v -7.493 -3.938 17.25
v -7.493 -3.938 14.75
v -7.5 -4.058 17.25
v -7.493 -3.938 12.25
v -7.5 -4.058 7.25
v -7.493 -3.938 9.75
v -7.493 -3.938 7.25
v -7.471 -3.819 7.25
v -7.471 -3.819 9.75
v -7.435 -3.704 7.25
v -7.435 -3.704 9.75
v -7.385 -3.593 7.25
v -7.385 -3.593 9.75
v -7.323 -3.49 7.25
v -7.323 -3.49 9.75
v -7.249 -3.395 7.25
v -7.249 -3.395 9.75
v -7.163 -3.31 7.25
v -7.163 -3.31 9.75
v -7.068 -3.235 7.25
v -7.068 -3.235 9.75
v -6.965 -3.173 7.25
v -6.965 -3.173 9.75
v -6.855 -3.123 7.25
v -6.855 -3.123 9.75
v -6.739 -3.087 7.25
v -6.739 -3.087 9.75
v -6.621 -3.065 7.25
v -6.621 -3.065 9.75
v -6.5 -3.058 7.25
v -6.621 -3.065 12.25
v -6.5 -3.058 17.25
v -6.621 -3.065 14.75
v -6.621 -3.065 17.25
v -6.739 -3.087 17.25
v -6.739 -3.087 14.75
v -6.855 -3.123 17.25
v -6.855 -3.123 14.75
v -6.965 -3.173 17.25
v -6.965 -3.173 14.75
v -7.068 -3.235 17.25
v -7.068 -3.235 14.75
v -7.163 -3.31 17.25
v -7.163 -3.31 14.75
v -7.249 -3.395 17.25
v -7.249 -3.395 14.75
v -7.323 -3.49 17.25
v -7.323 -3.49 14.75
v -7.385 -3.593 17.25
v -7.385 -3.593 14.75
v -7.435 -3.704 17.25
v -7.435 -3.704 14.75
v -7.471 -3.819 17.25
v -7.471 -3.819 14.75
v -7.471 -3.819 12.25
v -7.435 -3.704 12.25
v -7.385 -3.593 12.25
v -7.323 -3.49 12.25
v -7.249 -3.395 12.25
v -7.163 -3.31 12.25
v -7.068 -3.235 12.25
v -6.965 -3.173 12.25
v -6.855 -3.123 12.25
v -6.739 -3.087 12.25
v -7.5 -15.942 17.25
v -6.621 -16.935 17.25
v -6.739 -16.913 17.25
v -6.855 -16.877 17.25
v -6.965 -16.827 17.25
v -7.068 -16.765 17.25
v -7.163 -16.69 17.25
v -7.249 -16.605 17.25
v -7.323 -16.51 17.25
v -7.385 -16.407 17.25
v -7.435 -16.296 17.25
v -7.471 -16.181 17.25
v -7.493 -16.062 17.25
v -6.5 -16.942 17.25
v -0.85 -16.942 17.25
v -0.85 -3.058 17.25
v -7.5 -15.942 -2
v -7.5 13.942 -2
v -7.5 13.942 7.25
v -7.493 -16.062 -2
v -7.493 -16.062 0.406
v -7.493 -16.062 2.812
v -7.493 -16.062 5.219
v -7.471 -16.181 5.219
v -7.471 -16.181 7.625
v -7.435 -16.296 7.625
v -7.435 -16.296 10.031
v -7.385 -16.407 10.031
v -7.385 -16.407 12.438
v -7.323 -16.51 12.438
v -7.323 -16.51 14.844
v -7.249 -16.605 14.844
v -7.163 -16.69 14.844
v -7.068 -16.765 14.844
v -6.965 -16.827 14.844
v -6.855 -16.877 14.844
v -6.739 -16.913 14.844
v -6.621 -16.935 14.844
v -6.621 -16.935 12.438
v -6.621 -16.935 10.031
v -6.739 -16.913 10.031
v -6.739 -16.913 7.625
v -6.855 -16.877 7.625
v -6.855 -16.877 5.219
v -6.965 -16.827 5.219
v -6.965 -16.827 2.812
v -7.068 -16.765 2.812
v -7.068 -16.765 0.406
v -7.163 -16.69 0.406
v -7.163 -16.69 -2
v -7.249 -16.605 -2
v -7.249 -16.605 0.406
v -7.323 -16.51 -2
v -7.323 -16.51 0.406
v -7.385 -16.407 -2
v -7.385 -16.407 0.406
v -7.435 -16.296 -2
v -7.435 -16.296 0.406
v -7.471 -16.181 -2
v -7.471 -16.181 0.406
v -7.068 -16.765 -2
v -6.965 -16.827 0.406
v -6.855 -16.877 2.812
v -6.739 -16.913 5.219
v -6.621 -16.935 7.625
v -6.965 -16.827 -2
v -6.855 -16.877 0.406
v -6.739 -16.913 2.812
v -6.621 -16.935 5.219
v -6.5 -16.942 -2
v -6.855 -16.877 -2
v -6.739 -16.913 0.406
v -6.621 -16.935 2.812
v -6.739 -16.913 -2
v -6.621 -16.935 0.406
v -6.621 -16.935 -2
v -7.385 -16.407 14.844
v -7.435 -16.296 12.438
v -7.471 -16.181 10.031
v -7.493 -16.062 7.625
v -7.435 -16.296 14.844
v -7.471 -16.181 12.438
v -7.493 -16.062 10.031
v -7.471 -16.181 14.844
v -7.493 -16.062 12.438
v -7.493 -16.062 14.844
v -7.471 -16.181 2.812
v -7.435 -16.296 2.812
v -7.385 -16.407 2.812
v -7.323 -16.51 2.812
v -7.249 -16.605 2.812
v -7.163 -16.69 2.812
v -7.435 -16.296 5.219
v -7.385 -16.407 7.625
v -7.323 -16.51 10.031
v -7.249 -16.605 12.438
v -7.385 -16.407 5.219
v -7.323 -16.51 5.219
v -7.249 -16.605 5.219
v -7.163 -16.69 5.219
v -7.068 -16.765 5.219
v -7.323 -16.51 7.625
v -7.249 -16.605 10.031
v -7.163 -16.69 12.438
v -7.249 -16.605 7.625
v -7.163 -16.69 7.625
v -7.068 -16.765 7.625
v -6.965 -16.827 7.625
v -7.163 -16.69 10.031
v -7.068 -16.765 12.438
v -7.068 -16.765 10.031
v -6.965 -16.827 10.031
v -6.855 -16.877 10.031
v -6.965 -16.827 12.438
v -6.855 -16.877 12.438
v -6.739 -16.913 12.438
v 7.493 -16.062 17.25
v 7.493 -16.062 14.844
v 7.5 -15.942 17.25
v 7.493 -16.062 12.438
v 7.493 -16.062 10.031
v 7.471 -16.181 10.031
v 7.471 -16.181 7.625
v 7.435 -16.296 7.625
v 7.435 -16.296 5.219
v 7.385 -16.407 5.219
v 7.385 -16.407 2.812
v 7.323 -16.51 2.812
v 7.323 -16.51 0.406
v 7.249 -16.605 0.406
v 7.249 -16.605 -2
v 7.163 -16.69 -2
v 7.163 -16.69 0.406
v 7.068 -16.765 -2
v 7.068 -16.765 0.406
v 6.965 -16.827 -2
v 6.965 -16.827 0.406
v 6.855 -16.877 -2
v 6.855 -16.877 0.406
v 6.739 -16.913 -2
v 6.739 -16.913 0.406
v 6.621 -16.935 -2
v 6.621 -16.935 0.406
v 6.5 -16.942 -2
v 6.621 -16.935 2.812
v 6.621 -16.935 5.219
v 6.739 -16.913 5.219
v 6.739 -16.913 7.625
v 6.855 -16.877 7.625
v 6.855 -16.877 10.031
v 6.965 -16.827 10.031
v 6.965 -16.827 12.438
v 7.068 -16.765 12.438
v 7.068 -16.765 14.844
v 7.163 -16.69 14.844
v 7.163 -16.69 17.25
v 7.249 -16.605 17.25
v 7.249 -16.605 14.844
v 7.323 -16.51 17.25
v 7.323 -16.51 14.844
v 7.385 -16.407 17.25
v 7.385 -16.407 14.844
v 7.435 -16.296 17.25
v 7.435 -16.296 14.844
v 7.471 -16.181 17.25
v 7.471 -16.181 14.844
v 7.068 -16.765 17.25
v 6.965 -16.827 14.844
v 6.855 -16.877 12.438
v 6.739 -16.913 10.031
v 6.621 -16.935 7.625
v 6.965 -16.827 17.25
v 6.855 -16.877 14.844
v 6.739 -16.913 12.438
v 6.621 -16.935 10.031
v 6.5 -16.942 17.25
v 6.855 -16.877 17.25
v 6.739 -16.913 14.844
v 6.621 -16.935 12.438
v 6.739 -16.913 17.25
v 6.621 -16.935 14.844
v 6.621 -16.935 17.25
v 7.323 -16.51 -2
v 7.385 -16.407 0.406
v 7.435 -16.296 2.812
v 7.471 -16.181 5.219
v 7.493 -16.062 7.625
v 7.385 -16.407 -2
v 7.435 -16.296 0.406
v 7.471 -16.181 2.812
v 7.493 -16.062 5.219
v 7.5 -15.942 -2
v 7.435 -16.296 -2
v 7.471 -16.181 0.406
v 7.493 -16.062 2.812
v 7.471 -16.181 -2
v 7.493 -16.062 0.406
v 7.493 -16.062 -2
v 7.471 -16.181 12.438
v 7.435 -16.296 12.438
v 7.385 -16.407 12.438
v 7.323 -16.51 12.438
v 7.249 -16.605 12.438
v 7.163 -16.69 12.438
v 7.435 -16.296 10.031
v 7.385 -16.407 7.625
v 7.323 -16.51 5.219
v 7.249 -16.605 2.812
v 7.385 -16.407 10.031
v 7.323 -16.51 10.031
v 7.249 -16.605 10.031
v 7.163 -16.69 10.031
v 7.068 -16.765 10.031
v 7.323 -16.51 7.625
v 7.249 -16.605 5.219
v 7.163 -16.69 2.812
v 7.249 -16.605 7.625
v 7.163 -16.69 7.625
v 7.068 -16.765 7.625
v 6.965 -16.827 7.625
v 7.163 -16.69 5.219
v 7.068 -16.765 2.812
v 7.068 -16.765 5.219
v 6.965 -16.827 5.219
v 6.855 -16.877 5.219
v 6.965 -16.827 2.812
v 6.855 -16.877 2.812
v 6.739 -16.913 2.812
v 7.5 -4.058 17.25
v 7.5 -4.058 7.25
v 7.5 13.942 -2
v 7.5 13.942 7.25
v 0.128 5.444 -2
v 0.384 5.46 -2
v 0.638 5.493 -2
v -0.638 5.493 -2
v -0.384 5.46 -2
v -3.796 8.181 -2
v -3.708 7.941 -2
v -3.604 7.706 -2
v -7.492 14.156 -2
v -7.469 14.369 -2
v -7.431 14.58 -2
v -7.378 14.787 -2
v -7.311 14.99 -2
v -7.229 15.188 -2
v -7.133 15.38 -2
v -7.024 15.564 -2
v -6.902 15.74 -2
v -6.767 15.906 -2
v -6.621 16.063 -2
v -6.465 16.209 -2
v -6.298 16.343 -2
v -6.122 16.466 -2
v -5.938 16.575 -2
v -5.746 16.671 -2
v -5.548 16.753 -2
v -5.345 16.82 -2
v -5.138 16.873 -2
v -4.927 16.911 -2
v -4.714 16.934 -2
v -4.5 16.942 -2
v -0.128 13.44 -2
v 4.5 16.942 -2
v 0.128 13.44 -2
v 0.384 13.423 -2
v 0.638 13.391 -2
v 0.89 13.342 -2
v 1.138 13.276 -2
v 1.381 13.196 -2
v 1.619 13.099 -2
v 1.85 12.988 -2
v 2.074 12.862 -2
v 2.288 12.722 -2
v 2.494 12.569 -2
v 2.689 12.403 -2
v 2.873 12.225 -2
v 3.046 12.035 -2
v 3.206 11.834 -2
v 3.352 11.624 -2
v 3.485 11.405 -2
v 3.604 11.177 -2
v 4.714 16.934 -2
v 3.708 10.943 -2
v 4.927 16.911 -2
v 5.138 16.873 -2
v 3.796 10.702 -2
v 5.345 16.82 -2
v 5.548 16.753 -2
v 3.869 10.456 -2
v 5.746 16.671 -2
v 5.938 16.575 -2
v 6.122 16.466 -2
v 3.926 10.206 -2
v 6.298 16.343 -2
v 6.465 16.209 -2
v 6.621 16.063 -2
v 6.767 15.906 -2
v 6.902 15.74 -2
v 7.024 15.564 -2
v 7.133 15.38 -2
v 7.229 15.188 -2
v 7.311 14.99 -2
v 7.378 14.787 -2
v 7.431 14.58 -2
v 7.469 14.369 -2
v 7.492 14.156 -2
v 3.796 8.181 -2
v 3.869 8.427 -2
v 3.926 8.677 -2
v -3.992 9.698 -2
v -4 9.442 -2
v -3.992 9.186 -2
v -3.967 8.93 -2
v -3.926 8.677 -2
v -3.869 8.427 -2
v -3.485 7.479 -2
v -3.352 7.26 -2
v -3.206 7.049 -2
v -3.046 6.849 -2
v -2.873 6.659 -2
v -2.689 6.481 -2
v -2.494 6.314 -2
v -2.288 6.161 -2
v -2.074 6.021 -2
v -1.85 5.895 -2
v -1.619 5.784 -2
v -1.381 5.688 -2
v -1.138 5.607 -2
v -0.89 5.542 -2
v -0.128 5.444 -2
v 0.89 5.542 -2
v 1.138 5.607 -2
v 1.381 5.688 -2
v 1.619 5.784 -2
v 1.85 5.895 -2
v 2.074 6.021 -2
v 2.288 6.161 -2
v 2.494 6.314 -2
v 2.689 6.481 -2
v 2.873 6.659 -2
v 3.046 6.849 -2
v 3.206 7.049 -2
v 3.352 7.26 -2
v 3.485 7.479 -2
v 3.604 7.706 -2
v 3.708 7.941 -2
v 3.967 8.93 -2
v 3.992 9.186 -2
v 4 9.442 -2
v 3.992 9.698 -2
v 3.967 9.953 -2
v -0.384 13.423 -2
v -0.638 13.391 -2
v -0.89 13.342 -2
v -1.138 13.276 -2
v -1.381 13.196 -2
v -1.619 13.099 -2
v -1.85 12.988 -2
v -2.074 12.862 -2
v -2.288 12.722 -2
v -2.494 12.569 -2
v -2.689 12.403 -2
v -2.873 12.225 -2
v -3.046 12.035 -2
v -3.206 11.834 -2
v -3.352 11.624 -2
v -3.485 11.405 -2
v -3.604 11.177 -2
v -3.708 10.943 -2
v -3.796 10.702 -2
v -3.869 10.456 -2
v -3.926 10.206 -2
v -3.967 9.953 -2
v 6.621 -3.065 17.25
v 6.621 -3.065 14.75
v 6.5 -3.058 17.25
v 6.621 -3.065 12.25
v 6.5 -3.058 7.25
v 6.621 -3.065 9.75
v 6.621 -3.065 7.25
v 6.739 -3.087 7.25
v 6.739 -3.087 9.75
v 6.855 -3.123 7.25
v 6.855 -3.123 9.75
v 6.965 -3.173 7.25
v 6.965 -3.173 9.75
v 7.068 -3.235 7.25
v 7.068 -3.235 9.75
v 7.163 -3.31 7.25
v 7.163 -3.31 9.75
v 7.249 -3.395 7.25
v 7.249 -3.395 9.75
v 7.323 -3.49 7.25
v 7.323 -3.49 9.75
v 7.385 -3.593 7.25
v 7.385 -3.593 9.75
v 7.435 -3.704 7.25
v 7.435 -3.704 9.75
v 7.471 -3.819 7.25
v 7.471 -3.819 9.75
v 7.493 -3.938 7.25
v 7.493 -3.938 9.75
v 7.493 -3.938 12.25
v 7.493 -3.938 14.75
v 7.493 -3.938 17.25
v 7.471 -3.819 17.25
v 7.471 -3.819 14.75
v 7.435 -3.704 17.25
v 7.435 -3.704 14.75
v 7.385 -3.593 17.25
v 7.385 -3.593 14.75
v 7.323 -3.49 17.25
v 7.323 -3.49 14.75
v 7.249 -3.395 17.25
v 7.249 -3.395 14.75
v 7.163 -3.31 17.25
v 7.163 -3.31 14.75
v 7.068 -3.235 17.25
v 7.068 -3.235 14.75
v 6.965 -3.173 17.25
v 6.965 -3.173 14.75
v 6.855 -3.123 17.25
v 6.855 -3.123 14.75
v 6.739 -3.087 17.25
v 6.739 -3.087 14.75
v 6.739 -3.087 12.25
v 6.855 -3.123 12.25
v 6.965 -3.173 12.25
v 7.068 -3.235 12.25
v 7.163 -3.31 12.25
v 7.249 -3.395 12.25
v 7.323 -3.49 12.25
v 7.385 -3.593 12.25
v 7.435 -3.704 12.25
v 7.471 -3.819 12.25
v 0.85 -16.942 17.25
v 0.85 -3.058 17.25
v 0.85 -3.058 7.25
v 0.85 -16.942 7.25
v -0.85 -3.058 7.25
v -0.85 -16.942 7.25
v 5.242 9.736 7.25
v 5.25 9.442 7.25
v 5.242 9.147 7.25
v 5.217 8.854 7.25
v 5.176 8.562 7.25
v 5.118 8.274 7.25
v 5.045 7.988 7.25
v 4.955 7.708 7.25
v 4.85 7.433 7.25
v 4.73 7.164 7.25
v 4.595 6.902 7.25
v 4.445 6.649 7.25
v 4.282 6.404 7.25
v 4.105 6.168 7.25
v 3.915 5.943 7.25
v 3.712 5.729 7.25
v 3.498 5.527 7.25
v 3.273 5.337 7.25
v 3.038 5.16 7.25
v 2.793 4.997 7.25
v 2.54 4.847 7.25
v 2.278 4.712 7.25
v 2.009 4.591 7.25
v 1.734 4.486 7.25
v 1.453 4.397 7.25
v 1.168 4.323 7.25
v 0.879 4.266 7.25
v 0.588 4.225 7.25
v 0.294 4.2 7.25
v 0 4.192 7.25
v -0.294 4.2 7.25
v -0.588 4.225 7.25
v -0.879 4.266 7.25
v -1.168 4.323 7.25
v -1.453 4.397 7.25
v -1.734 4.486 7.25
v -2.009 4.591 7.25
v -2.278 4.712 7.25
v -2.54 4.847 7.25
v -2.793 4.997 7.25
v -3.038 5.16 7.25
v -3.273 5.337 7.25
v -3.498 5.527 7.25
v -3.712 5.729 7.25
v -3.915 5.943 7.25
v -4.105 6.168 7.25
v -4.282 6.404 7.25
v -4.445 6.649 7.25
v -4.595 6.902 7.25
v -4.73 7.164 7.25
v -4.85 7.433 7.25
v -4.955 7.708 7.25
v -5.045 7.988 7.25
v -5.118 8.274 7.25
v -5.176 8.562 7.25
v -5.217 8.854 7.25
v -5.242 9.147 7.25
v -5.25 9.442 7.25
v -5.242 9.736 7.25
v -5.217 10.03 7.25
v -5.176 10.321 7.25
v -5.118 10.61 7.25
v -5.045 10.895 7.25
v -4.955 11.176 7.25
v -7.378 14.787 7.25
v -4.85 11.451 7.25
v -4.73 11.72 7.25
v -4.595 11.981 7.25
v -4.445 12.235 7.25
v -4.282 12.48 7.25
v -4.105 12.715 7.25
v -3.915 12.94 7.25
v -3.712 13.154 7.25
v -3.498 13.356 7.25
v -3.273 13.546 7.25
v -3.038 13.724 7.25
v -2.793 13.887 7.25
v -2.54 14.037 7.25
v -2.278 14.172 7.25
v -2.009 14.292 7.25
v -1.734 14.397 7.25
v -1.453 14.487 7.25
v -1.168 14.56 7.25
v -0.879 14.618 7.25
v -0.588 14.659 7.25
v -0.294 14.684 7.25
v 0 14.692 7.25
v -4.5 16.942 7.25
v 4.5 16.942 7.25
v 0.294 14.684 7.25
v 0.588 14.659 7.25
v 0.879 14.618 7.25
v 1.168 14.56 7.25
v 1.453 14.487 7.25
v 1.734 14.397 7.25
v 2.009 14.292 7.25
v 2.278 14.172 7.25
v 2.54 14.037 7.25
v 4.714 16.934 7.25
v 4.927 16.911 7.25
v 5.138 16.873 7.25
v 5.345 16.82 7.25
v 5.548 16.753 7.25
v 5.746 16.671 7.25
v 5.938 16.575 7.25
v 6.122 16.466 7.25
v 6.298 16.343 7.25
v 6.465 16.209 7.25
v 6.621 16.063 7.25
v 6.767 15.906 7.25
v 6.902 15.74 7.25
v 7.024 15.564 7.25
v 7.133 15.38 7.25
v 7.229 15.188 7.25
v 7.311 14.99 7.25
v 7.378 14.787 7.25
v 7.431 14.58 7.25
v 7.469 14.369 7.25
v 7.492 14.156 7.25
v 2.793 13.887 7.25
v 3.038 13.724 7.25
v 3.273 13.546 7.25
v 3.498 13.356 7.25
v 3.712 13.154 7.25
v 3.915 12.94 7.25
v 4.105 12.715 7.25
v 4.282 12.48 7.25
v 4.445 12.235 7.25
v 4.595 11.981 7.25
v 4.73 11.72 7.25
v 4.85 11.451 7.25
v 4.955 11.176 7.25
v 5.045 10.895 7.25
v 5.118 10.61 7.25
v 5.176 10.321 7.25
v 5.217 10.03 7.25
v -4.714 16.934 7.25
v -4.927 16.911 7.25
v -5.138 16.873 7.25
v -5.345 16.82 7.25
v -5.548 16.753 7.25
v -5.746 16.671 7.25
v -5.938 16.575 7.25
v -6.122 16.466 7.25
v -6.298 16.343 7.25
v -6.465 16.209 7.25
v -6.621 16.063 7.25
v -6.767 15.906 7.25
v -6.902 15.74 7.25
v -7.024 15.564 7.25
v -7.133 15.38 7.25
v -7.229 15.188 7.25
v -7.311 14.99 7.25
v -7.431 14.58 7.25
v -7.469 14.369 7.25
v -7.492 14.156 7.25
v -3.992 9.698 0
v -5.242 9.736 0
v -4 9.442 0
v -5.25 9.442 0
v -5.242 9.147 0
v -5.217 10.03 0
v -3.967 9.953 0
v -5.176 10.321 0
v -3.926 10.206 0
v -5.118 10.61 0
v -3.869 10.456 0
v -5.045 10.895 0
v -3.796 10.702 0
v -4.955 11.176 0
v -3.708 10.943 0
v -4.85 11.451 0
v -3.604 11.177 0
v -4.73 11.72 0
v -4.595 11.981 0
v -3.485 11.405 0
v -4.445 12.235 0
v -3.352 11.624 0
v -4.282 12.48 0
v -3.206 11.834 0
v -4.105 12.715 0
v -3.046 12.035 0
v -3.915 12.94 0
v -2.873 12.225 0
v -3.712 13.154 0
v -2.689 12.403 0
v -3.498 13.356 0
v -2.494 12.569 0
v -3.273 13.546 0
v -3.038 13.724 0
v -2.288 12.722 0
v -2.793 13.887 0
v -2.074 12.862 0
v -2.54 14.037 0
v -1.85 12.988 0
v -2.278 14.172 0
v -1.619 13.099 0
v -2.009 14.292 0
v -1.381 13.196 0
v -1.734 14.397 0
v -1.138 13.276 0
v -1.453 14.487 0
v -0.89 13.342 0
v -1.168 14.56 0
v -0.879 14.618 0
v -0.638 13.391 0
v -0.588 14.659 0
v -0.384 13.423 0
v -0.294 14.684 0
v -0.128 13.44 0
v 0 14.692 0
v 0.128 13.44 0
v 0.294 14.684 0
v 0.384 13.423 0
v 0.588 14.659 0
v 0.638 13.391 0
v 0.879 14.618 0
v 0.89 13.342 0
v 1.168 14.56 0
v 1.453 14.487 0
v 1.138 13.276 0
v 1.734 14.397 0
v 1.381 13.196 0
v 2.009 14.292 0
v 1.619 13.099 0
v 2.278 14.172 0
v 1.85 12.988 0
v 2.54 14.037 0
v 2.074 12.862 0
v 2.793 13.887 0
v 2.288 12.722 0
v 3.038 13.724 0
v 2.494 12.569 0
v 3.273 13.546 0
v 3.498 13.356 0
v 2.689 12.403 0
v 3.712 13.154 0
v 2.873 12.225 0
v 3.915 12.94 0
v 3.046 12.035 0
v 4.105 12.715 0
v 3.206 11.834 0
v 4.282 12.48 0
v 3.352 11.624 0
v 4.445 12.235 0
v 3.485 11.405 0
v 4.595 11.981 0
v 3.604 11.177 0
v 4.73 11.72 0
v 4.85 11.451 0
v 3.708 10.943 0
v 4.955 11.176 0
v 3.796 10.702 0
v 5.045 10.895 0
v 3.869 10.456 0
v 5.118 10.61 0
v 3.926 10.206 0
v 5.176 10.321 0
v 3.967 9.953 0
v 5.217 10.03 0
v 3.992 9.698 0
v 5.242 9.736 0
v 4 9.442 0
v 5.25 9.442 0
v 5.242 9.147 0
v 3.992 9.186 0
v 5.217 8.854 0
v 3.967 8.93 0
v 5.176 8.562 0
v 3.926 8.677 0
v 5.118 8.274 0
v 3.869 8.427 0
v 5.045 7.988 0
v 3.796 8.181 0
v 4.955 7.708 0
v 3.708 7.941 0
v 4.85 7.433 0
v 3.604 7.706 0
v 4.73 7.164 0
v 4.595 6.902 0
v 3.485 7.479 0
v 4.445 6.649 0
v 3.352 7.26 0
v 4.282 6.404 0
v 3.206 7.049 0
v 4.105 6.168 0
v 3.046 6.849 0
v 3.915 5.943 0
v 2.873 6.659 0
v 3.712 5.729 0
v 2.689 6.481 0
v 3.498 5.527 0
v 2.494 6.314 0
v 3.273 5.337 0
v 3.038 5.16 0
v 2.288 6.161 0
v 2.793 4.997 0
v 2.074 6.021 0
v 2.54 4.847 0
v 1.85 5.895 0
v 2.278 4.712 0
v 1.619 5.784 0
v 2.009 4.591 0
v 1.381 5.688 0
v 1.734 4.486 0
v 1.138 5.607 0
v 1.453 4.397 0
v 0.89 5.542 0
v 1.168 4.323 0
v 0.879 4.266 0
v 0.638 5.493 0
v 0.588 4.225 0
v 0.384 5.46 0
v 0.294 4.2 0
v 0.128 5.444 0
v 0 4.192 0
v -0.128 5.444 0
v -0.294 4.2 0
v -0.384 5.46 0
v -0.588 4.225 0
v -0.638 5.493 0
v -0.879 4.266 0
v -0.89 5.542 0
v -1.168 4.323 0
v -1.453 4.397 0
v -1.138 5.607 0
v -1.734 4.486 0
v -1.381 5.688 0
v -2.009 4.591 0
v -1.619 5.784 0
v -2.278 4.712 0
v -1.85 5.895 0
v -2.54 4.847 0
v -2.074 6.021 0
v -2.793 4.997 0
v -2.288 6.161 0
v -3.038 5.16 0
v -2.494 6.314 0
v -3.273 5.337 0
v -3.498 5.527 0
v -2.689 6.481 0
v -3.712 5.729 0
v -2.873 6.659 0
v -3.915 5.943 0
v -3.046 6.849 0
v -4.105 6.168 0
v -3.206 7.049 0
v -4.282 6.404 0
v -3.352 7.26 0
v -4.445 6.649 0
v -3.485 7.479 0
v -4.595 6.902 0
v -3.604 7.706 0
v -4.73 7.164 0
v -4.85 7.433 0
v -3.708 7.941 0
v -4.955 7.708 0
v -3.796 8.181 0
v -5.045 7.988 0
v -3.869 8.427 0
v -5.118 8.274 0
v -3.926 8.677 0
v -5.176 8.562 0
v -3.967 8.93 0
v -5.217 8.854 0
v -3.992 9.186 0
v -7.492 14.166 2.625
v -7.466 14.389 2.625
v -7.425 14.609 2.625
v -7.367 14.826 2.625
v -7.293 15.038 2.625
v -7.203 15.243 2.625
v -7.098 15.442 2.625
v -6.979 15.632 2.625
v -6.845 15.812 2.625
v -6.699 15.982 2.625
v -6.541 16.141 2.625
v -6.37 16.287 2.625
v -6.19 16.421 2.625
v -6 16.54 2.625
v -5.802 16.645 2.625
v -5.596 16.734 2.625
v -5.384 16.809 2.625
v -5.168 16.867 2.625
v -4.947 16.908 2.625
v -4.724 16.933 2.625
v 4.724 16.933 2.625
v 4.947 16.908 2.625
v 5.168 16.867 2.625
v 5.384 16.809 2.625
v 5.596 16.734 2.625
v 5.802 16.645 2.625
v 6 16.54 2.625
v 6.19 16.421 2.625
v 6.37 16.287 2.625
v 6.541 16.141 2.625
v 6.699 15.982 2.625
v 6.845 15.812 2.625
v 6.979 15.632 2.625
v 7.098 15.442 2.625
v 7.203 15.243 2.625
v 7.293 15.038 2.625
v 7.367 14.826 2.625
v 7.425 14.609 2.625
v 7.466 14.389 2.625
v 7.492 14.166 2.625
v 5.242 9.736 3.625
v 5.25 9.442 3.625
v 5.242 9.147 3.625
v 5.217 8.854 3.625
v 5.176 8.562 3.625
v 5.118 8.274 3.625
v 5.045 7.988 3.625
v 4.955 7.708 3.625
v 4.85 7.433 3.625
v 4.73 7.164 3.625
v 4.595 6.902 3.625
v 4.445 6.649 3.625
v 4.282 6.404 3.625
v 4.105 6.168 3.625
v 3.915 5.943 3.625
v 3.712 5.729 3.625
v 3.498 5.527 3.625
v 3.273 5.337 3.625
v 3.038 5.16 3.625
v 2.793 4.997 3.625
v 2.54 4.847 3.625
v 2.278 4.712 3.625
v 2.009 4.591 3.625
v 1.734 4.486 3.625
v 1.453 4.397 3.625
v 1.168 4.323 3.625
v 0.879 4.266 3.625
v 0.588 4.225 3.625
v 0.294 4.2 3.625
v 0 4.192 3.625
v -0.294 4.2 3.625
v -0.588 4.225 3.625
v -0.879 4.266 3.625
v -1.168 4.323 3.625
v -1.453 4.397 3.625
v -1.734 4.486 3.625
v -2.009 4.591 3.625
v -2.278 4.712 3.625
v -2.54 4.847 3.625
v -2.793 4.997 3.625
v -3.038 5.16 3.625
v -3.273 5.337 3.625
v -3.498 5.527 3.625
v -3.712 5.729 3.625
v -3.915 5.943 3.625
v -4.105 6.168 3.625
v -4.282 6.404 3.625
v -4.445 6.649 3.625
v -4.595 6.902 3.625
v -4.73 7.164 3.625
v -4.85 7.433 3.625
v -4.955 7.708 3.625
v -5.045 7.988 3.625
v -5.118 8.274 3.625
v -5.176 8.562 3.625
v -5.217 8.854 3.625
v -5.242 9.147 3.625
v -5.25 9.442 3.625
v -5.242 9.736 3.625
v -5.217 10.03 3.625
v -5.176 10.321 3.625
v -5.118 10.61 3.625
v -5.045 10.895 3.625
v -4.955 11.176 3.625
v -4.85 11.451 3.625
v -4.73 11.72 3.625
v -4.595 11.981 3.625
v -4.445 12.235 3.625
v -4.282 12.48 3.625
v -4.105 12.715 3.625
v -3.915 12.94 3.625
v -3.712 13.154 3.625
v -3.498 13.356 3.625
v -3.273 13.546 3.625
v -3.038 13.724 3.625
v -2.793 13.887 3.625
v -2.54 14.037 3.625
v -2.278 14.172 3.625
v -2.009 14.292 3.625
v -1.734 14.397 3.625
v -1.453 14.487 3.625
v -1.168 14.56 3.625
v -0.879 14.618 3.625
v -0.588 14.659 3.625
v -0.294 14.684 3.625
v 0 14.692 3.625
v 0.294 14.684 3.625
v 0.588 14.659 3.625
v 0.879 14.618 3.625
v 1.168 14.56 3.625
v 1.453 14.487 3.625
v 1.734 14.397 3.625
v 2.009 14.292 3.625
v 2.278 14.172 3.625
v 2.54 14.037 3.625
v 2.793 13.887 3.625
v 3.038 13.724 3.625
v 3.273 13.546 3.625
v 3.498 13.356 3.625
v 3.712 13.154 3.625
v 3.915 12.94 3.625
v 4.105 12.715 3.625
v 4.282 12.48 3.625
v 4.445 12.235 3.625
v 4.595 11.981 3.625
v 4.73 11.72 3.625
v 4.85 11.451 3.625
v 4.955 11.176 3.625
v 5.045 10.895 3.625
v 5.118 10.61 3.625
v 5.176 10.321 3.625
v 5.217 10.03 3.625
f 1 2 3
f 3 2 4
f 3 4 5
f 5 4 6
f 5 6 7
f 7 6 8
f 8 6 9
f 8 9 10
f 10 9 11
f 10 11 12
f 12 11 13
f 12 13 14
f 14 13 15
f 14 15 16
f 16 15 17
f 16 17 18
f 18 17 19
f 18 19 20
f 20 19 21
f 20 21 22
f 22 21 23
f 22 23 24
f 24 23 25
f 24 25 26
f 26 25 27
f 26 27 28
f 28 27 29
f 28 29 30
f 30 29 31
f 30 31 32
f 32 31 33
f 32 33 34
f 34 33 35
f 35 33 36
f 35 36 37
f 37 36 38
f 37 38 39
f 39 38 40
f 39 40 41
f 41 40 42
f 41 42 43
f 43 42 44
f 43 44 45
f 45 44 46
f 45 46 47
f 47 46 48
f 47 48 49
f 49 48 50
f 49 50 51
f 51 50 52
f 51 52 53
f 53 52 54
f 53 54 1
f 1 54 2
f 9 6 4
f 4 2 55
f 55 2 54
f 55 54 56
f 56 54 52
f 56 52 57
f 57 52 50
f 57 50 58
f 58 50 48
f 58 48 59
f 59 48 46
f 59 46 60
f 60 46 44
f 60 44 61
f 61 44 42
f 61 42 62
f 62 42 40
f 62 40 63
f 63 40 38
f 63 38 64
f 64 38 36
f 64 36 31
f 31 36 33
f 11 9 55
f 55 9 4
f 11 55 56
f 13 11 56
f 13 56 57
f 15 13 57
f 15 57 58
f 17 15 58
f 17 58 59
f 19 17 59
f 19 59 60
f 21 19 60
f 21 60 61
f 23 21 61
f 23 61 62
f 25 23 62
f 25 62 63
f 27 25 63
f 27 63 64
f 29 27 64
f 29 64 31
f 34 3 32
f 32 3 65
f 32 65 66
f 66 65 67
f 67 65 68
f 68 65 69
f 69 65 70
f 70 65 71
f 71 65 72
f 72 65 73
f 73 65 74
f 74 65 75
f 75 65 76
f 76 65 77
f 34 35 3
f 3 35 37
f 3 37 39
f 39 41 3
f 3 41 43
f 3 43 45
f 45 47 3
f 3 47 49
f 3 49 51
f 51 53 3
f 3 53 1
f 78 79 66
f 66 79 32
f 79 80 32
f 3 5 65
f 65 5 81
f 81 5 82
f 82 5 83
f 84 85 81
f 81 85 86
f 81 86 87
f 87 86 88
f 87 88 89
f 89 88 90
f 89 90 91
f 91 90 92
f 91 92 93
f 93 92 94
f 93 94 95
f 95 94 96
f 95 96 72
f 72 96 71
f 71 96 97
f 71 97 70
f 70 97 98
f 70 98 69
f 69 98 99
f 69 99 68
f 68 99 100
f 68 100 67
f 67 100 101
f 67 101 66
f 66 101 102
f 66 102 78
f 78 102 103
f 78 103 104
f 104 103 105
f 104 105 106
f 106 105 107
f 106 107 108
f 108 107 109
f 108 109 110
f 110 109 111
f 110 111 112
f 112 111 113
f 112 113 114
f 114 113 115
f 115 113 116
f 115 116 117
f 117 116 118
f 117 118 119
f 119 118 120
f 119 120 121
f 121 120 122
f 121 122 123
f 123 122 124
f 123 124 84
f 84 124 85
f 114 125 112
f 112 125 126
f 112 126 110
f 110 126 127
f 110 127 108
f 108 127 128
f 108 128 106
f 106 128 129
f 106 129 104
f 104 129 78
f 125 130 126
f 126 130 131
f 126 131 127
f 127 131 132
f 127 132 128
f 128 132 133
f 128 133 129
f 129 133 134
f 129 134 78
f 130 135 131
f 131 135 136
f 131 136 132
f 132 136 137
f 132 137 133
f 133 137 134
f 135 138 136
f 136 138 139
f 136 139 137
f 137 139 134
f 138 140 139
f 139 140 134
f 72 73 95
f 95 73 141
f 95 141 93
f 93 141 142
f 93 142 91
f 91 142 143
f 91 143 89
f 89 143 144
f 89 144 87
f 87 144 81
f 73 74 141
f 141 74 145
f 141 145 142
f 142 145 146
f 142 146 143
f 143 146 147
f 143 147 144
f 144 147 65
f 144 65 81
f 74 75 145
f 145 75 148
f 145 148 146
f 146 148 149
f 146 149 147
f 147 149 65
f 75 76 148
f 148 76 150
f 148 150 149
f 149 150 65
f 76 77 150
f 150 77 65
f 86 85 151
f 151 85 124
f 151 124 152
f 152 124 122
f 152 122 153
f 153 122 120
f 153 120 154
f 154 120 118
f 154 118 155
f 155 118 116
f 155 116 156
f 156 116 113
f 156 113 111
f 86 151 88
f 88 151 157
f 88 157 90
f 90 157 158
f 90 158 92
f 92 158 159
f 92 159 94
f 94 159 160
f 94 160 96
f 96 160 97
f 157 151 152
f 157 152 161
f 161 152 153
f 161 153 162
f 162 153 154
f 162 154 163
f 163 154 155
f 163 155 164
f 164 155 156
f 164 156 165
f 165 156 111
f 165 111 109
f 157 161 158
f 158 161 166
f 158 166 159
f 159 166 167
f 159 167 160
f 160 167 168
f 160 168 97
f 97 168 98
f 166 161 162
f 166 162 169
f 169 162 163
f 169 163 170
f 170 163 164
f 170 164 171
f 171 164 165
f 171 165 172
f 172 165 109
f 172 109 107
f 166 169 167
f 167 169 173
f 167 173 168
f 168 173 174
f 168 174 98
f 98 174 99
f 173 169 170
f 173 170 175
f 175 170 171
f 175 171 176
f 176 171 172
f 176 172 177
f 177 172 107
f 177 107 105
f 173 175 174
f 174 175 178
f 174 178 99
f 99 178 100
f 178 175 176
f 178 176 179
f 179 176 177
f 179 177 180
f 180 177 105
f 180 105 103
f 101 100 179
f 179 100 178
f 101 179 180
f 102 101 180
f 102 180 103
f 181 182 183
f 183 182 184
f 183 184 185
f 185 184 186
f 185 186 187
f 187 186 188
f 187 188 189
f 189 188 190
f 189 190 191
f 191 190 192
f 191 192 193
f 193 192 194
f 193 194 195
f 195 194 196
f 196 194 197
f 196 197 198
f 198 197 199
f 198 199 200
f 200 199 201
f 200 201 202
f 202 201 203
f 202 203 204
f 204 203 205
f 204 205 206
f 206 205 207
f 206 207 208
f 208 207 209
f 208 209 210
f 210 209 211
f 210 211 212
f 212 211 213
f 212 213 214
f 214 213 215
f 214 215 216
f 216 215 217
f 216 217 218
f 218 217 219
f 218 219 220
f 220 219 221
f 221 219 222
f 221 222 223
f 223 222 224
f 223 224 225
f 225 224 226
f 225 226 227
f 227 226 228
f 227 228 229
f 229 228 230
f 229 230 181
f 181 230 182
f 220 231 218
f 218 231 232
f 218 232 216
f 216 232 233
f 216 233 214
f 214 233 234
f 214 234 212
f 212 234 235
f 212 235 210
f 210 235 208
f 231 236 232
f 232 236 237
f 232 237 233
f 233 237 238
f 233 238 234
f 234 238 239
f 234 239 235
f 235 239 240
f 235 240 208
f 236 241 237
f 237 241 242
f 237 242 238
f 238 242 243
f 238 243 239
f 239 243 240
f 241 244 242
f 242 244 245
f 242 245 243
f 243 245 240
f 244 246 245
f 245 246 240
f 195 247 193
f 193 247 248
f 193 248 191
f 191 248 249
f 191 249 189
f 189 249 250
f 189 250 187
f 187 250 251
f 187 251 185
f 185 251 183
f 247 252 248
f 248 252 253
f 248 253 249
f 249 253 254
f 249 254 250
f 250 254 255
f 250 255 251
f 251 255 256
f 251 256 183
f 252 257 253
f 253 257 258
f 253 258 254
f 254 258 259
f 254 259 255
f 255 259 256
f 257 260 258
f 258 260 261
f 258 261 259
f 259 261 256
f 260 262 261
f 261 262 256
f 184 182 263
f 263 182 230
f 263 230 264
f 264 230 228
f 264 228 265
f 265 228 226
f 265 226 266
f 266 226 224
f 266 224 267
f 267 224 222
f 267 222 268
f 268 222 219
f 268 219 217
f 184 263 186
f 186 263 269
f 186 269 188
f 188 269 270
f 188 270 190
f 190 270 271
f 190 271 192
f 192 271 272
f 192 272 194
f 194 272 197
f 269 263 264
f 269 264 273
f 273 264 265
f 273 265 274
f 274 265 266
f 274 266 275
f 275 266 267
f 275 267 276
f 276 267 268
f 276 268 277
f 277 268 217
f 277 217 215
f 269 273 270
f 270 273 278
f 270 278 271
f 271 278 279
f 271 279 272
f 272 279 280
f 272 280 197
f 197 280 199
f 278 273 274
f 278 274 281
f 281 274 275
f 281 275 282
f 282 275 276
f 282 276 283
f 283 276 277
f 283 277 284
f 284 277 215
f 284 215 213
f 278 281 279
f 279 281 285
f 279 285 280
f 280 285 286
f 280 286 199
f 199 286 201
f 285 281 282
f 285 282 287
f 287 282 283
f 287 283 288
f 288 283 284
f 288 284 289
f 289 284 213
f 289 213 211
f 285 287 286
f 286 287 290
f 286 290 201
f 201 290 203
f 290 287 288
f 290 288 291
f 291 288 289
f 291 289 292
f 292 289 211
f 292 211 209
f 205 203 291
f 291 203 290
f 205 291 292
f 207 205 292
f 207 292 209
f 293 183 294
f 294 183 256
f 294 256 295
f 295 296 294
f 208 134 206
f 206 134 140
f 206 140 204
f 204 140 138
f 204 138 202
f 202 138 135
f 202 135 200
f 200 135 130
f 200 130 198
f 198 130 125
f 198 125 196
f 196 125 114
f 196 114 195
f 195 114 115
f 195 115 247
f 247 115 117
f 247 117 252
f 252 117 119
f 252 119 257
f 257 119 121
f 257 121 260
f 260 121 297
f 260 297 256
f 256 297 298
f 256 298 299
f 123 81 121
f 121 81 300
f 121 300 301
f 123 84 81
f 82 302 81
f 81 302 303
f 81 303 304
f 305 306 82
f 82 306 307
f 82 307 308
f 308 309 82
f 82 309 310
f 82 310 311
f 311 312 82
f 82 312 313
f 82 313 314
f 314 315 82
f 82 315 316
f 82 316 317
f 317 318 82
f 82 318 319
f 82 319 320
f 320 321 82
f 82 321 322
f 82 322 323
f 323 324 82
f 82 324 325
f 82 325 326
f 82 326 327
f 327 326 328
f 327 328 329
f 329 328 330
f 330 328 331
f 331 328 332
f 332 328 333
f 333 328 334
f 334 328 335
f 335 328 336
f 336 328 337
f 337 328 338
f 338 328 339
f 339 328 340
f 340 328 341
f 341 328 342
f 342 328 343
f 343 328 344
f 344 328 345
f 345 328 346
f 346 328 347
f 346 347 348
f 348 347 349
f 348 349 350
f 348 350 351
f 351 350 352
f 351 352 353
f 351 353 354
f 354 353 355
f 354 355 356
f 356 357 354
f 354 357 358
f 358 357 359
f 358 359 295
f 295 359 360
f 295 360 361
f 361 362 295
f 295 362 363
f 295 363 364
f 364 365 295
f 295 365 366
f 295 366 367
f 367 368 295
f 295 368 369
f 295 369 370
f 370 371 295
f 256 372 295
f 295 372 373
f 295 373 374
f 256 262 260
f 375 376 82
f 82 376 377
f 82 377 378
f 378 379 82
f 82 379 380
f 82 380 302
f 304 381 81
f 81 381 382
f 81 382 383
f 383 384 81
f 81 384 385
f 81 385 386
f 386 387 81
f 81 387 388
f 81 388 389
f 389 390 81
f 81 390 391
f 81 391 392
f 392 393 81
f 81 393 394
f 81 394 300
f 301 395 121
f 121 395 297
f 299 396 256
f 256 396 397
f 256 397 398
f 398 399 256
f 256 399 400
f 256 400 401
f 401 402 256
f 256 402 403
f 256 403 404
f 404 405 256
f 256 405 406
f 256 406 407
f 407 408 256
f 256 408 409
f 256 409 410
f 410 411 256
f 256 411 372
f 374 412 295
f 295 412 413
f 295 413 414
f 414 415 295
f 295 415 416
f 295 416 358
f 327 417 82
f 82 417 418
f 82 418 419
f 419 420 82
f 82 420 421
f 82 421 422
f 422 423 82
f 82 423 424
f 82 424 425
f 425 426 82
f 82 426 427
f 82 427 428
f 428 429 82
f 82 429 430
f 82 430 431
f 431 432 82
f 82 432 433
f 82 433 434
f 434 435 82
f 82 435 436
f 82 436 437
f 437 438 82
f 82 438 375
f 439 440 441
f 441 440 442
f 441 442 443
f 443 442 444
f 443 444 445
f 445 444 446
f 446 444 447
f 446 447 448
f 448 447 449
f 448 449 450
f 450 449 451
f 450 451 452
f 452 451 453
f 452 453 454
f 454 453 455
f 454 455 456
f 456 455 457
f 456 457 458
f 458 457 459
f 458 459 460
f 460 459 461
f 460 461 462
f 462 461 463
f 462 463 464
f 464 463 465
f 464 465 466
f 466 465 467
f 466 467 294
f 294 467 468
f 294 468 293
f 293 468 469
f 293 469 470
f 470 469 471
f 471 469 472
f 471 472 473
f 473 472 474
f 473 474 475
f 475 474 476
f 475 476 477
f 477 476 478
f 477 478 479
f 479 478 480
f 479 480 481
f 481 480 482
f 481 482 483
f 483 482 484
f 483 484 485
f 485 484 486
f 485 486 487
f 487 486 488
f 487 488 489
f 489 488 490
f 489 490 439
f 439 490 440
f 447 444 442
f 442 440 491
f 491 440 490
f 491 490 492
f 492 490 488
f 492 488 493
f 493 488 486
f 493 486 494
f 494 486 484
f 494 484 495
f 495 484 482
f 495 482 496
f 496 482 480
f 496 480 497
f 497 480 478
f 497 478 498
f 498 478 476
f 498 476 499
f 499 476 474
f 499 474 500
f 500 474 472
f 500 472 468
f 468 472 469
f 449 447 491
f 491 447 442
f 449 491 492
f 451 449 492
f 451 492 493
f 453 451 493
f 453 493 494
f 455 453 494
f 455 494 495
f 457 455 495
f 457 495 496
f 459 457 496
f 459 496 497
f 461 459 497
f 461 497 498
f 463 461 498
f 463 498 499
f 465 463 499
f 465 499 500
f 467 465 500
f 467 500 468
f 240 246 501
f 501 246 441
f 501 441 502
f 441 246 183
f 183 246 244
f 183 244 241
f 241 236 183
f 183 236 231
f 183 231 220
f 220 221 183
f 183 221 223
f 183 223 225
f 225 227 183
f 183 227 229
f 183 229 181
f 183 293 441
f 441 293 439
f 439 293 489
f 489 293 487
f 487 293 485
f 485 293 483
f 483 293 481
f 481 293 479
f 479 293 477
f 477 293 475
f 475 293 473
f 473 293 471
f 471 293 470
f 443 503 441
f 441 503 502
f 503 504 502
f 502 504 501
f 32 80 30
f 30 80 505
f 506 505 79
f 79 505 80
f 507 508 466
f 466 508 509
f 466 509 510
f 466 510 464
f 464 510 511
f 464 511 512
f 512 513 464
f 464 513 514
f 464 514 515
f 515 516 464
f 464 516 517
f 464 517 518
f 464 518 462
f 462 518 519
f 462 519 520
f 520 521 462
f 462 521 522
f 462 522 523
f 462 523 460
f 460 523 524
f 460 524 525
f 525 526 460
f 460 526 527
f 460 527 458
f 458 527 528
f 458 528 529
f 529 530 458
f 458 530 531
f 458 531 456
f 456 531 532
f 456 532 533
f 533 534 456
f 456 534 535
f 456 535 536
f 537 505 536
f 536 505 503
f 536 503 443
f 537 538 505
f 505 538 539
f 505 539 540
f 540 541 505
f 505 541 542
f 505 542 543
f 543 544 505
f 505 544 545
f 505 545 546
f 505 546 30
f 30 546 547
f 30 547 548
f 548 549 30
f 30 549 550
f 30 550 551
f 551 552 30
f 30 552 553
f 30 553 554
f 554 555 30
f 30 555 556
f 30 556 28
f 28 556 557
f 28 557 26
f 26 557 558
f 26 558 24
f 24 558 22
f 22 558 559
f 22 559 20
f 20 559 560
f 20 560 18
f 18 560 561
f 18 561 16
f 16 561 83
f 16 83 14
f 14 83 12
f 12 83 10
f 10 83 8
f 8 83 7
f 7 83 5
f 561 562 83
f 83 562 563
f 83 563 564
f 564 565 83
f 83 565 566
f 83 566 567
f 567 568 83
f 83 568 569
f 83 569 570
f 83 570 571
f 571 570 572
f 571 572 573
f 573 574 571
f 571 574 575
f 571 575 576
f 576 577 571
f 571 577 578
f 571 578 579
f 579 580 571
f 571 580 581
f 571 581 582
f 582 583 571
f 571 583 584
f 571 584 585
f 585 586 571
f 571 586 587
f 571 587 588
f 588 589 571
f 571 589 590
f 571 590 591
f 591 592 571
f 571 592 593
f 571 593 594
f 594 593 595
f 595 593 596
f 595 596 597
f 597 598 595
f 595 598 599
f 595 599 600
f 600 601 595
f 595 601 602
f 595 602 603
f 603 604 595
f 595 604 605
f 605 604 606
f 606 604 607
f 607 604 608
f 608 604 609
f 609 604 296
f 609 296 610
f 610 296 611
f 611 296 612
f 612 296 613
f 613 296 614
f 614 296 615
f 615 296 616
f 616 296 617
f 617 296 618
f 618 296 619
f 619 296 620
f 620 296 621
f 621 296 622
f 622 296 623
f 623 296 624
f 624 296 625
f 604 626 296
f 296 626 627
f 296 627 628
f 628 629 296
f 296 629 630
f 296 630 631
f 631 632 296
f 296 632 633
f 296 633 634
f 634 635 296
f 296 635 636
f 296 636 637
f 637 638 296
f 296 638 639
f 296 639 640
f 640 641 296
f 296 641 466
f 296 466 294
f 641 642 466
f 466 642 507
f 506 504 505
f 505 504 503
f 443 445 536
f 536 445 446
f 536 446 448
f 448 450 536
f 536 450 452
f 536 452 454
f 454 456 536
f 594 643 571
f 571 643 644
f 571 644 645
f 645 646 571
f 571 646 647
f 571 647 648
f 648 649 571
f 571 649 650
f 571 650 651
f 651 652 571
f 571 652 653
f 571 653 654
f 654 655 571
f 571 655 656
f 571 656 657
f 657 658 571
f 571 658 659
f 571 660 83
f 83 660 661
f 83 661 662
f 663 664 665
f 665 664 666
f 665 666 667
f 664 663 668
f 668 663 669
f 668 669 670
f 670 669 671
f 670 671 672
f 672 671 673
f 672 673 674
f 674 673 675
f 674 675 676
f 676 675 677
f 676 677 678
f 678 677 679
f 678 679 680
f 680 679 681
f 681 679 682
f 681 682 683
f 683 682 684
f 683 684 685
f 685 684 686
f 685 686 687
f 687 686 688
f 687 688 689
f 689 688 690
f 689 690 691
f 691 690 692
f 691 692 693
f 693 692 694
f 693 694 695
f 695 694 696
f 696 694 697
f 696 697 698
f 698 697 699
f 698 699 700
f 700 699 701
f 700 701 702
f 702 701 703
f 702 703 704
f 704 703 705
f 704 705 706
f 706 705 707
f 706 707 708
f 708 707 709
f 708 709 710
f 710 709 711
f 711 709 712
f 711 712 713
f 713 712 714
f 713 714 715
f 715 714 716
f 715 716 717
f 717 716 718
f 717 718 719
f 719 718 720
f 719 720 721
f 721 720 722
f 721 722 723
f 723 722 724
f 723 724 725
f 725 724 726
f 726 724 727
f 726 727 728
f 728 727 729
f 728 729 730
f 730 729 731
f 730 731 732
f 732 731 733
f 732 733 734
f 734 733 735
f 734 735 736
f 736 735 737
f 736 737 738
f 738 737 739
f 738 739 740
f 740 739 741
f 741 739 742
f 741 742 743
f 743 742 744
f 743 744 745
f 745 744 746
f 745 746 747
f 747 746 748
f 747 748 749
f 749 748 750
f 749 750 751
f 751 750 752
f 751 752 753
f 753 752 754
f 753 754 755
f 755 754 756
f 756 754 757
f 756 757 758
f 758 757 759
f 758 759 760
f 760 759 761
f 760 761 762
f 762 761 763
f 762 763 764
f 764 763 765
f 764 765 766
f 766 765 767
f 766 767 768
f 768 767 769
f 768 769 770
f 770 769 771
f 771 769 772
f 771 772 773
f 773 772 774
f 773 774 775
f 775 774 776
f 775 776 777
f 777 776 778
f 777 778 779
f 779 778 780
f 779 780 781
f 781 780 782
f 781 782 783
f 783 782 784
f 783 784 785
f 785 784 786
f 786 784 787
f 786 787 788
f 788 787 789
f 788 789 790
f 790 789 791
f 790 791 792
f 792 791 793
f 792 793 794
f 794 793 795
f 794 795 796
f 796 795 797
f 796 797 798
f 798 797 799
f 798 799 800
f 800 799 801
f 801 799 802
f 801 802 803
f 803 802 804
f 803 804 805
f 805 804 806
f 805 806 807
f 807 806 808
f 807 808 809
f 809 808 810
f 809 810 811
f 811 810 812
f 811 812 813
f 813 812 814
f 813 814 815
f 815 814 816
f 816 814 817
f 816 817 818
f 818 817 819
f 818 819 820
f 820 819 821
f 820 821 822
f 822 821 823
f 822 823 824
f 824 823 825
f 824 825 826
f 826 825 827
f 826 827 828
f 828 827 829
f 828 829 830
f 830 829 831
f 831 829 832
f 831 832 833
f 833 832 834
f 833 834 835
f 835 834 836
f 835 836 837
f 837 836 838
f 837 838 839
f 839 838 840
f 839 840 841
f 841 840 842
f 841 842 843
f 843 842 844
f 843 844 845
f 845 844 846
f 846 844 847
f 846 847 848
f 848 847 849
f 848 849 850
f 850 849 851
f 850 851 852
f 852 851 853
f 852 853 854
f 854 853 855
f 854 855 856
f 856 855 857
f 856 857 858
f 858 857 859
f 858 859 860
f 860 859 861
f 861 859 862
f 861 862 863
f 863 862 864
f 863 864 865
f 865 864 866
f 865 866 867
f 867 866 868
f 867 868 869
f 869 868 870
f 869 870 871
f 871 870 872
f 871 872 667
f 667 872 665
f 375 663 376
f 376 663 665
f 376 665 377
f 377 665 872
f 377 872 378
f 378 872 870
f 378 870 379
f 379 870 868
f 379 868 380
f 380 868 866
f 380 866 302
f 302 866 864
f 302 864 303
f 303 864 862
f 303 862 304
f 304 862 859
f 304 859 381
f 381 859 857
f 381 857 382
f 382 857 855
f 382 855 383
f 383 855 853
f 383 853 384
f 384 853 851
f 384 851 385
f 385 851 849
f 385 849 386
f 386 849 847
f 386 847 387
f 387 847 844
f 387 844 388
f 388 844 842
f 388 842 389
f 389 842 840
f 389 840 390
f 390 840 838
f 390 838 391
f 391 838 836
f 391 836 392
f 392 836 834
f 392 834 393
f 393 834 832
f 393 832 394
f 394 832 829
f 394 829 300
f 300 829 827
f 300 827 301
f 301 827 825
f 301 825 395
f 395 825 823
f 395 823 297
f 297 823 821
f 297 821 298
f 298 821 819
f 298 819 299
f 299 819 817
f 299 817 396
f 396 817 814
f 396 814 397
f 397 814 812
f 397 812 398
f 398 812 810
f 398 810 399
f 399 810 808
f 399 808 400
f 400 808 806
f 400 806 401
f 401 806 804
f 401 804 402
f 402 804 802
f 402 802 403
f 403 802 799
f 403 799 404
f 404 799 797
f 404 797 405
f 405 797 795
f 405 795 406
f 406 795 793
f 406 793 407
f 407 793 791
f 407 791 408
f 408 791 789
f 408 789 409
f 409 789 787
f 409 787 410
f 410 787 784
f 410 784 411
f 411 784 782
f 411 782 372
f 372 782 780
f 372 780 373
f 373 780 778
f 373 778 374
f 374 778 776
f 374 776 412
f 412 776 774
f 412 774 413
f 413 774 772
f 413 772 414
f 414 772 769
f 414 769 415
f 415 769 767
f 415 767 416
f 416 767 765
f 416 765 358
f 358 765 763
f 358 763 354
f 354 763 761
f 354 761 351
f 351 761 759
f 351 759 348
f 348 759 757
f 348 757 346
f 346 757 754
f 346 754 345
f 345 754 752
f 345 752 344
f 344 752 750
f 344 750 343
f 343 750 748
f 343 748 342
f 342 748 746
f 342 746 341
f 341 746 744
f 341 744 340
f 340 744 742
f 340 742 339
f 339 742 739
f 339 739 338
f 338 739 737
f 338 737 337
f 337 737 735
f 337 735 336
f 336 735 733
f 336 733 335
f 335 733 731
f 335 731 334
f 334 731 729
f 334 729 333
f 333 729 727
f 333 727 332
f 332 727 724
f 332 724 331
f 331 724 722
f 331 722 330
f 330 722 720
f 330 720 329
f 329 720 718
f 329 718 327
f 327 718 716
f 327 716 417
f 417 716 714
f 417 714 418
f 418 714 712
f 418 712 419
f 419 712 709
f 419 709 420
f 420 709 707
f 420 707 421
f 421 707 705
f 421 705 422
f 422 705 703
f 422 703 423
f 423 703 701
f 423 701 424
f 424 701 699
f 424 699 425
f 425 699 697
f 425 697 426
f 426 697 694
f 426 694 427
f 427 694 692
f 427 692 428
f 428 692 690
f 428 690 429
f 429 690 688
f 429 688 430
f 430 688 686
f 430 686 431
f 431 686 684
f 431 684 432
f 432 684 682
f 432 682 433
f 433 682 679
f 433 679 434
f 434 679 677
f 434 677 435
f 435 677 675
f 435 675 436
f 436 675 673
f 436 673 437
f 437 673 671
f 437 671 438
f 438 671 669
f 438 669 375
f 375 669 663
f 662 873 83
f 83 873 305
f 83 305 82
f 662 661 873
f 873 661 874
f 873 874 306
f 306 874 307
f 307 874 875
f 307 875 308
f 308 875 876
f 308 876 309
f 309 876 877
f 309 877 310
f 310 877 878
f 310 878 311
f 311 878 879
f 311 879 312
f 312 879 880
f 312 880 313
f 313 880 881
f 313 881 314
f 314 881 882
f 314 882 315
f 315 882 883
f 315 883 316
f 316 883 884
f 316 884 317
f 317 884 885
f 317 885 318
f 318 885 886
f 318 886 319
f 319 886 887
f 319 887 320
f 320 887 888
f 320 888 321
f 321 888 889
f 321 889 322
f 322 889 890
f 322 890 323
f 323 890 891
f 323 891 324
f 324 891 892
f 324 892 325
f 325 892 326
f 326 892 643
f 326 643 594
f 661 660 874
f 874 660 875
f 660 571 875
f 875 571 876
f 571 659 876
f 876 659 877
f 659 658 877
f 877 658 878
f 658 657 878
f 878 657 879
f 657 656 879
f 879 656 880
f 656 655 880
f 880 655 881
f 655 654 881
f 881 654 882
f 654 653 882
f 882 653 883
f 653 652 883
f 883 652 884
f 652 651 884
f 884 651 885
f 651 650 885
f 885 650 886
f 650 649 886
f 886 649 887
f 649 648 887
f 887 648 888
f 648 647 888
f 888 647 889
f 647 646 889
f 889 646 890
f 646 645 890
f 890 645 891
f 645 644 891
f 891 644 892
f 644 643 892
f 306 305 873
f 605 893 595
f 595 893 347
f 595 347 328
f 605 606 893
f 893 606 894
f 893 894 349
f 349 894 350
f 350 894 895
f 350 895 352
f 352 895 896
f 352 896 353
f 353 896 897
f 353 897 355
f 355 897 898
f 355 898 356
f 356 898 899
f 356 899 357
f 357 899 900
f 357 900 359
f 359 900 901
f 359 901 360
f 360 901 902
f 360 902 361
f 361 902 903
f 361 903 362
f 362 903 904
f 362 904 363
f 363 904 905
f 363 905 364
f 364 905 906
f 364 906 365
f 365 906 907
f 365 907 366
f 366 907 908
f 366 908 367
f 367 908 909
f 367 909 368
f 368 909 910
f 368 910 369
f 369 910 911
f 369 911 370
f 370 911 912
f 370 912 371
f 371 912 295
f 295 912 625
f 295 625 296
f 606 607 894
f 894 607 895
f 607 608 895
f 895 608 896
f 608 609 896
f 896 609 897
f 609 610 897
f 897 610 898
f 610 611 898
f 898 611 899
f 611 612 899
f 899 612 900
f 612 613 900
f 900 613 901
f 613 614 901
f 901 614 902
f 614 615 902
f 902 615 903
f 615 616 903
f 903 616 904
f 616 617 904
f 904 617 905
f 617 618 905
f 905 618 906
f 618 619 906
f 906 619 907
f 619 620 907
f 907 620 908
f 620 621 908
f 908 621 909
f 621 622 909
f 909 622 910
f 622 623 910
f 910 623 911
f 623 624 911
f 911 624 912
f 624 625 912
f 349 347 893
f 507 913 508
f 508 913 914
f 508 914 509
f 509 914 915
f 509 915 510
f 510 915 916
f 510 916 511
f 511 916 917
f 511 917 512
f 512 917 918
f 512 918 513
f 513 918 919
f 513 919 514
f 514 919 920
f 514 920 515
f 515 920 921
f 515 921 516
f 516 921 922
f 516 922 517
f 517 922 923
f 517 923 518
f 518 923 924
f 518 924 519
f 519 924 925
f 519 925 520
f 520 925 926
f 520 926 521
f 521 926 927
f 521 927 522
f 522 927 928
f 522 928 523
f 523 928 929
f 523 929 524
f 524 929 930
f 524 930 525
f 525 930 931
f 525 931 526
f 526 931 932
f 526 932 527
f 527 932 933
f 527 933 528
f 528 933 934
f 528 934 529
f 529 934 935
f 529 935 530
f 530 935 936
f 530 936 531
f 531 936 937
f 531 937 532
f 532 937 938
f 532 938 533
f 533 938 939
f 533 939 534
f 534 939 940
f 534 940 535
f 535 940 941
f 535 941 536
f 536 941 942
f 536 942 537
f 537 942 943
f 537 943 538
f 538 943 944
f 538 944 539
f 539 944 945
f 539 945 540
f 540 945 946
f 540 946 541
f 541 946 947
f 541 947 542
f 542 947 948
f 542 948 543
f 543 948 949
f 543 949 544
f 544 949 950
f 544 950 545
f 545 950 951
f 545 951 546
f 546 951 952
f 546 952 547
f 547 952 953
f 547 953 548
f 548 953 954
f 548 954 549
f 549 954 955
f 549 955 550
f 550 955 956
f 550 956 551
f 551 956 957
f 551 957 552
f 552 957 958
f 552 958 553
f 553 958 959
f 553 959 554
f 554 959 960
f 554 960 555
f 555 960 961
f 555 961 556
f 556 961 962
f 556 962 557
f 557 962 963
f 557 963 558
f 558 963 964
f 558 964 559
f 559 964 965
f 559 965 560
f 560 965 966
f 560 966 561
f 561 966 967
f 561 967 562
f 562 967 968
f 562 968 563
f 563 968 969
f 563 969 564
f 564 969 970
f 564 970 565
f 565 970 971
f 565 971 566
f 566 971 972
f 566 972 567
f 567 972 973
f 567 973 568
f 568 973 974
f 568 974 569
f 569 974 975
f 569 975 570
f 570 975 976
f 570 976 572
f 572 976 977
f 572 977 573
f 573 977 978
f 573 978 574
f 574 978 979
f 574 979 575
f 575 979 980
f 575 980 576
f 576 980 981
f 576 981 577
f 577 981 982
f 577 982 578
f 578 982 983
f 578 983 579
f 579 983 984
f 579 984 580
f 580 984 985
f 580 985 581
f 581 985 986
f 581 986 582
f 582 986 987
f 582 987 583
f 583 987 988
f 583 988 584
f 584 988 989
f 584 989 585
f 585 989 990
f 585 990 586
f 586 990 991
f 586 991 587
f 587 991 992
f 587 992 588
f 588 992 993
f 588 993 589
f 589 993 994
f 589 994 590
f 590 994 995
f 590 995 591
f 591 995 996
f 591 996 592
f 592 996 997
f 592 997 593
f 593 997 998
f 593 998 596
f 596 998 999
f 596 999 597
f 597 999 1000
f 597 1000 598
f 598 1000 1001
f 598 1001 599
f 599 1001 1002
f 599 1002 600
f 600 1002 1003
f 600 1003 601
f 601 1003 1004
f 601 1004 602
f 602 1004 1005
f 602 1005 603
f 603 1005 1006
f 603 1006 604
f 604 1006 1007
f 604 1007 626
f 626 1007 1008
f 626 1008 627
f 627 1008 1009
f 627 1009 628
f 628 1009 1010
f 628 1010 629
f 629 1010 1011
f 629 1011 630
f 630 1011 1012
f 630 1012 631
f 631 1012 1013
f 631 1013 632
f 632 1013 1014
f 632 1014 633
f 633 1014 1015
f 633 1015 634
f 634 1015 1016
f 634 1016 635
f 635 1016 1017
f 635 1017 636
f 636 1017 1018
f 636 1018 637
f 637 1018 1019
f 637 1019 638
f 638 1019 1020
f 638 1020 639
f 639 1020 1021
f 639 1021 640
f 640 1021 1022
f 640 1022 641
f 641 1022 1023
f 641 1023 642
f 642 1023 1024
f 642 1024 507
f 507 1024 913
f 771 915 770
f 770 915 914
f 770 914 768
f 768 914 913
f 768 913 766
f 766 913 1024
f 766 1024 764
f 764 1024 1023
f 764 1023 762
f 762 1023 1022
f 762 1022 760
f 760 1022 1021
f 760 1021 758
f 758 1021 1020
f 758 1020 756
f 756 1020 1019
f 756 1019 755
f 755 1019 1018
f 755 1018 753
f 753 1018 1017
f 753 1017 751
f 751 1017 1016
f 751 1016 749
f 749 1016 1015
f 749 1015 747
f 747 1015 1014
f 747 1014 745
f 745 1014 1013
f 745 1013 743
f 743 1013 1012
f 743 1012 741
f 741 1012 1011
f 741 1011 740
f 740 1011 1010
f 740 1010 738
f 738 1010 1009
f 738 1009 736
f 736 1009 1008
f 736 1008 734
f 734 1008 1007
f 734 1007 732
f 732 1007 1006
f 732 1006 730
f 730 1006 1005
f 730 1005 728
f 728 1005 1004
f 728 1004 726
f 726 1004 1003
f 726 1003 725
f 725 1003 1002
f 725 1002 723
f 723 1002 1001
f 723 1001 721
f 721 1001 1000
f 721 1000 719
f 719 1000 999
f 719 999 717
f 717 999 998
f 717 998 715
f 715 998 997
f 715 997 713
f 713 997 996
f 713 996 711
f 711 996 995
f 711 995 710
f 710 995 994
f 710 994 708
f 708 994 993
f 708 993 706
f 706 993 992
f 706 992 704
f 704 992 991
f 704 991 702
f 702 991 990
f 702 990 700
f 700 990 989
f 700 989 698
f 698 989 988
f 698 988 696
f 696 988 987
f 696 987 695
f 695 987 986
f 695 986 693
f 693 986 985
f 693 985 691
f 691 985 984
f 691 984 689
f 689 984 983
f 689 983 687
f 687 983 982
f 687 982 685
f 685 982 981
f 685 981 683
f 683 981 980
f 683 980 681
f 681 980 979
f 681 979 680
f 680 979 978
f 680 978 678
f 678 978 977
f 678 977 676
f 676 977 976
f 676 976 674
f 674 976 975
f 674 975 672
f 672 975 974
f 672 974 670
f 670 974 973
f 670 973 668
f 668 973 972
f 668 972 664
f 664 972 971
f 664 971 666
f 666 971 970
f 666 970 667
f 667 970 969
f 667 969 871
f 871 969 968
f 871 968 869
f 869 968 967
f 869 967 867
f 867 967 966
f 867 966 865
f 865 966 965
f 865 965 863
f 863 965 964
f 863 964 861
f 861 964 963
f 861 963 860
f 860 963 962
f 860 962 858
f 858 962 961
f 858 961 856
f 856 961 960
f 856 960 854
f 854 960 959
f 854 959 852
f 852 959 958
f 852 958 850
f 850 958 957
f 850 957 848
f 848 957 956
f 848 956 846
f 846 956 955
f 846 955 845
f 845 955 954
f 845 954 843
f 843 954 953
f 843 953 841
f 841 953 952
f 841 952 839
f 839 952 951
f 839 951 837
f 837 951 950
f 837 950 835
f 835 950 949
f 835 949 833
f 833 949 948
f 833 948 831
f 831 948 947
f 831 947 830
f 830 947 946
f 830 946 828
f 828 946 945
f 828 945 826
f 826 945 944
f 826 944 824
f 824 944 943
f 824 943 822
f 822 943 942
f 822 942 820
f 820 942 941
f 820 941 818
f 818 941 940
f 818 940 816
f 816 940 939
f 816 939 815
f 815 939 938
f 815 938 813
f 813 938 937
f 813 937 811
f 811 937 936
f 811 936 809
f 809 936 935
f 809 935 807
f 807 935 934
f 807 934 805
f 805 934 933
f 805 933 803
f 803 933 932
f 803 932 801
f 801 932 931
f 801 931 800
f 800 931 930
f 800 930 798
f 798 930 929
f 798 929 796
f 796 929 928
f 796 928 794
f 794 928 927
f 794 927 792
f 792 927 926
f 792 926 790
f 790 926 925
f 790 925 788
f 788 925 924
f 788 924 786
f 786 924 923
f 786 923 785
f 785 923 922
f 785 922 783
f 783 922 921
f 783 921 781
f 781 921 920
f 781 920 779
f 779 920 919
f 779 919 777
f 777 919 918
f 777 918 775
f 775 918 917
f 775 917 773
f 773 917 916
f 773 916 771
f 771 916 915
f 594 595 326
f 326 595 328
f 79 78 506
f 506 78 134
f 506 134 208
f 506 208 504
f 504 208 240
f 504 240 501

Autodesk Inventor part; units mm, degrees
ref_plane "YZ Plane" through (0, 0, 0) normal (1, 0, 0) x (0, 1, 0)
ref_plane "XZ Plane" through (0, 0, 0) normal (0, 1, 0) x (-1, 0, 0)
ref_plane "XY Plane" through (0, 0, 0) normal (0, 0, 1) x (1, 0, 0)
sketch "Sketch1" plane through (0, 0, 0) normal (0, 0, 1) x (1, 0, 0)
  line L0 (-7.5, 16.9418) -> (7.5, 16.9418)
  line L1 (7.5, 16.9418) -> (7.5, -16.9418)
  line L2 (7.5, -16.9418) -> (-7.5, -16.9418)
  line L3 (-7.5, -16.9418) -> (-7.5, 16.9418)
  line L4 (-7.5, 16.9418) -> (7.5, -16.9418) construction
  line L5 (7.5, 16.9418) -> (-7.5, -16.9418) construction
  circle A0 centre (0, 9.4418) radius 5.25
  point P0 (0, 0)
  dimension "d0" = 10.5
  dimension "d1" = 7.5
  dimension "d2" = 15
extrude "Extrusion1" add sketch "Sketch1" along normal blind 7.25
fillet "Fillet1" radius 3 2 edges at (7.5, 16.9418, 3.625) (-7.5, 16.9418, 3.625)
sketch "Sketch2" plane through (0, 0, 0) normal (0, 0, -1) x (-1, 0, 0)
  arc A0 (7.5, 13.9418) -> (4.5, 16.9418) centre (4.5, 13.9418) ccw projected
  line L0 (-4.5, 16.9418) -> (4.5, 16.9418) projected
  arc A1 (-4.5, 16.9418) -> (-7.5, 13.9418) centre (-4.5, 13.9418) ccw projected
  line L1 (-7.5, -16.9418) -> (-7.5, 13.9418) projected
  line L2 (7.5, -16.9418) -> (-7.5, -16.9418) projected
  line L3 (7.5, 13.9418) -> (7.5, -16.9418) projected
  circle A2 centre (0, 9.4418) radius 5.25 projected
  circle A3 centre (0, 9.4418) radius 4
  point P0 (0, 0)
  dimension "d6" = 8
extrude "Extrusion2" add sketch "Sketch2" along normal blind 2 contours L3 L2 L1 A1 L0 A0 | A2
sketch "Sketch3" plane through (0, 0, 7.25) normal (0, 0, 1) x (1, 0, 0)
  line L0 (-7.5, -16.9418) -> (7.5, -16.9418) projected
  line L1 (-7.5, -16.9418) -> (-0.85, -16.9418)
  line L2 (-0.85, -16.9418) -> (-0.85, -3.0582)
  line L3 (-0.85, -3.0582) -> (-7.5, -3.0582)
  line L4 (-7.5, -3.0582) -> (-7.5, -16.9418)
  line L5 (7.5, -3.0582) -> (0.85, -3.0582)
  line L6 (0.85, -3.0582) -> (0.85, -16.9418)
  line L7 (0.85, -16.9418) -> (7.5, -16.9418)
  line L8 (7.5, -16.9418) -> (7.5, -3.0582)
  line L9 (4.5, 16.9418) -> (-4.5, 16.9418) projected
  point P0 (0, 0)
  point P1 (-0.85, -16.9418)
  dimension "d10" = 0.85
  dimension "d11" = 0.85
  dimension "d12" = 20
extrude "Extrusion3" add sketch "Sketch3" along normal blind 10
fillet "Fillet2" radius 1 4 edges at (7.5, -3.0582, 12.25) (7.5, -16.9418, 7.625) (-7.5, -16.9418, 7.625) (-7.5, -3.0582, 12.25)
properties part number "Solder_aid"
